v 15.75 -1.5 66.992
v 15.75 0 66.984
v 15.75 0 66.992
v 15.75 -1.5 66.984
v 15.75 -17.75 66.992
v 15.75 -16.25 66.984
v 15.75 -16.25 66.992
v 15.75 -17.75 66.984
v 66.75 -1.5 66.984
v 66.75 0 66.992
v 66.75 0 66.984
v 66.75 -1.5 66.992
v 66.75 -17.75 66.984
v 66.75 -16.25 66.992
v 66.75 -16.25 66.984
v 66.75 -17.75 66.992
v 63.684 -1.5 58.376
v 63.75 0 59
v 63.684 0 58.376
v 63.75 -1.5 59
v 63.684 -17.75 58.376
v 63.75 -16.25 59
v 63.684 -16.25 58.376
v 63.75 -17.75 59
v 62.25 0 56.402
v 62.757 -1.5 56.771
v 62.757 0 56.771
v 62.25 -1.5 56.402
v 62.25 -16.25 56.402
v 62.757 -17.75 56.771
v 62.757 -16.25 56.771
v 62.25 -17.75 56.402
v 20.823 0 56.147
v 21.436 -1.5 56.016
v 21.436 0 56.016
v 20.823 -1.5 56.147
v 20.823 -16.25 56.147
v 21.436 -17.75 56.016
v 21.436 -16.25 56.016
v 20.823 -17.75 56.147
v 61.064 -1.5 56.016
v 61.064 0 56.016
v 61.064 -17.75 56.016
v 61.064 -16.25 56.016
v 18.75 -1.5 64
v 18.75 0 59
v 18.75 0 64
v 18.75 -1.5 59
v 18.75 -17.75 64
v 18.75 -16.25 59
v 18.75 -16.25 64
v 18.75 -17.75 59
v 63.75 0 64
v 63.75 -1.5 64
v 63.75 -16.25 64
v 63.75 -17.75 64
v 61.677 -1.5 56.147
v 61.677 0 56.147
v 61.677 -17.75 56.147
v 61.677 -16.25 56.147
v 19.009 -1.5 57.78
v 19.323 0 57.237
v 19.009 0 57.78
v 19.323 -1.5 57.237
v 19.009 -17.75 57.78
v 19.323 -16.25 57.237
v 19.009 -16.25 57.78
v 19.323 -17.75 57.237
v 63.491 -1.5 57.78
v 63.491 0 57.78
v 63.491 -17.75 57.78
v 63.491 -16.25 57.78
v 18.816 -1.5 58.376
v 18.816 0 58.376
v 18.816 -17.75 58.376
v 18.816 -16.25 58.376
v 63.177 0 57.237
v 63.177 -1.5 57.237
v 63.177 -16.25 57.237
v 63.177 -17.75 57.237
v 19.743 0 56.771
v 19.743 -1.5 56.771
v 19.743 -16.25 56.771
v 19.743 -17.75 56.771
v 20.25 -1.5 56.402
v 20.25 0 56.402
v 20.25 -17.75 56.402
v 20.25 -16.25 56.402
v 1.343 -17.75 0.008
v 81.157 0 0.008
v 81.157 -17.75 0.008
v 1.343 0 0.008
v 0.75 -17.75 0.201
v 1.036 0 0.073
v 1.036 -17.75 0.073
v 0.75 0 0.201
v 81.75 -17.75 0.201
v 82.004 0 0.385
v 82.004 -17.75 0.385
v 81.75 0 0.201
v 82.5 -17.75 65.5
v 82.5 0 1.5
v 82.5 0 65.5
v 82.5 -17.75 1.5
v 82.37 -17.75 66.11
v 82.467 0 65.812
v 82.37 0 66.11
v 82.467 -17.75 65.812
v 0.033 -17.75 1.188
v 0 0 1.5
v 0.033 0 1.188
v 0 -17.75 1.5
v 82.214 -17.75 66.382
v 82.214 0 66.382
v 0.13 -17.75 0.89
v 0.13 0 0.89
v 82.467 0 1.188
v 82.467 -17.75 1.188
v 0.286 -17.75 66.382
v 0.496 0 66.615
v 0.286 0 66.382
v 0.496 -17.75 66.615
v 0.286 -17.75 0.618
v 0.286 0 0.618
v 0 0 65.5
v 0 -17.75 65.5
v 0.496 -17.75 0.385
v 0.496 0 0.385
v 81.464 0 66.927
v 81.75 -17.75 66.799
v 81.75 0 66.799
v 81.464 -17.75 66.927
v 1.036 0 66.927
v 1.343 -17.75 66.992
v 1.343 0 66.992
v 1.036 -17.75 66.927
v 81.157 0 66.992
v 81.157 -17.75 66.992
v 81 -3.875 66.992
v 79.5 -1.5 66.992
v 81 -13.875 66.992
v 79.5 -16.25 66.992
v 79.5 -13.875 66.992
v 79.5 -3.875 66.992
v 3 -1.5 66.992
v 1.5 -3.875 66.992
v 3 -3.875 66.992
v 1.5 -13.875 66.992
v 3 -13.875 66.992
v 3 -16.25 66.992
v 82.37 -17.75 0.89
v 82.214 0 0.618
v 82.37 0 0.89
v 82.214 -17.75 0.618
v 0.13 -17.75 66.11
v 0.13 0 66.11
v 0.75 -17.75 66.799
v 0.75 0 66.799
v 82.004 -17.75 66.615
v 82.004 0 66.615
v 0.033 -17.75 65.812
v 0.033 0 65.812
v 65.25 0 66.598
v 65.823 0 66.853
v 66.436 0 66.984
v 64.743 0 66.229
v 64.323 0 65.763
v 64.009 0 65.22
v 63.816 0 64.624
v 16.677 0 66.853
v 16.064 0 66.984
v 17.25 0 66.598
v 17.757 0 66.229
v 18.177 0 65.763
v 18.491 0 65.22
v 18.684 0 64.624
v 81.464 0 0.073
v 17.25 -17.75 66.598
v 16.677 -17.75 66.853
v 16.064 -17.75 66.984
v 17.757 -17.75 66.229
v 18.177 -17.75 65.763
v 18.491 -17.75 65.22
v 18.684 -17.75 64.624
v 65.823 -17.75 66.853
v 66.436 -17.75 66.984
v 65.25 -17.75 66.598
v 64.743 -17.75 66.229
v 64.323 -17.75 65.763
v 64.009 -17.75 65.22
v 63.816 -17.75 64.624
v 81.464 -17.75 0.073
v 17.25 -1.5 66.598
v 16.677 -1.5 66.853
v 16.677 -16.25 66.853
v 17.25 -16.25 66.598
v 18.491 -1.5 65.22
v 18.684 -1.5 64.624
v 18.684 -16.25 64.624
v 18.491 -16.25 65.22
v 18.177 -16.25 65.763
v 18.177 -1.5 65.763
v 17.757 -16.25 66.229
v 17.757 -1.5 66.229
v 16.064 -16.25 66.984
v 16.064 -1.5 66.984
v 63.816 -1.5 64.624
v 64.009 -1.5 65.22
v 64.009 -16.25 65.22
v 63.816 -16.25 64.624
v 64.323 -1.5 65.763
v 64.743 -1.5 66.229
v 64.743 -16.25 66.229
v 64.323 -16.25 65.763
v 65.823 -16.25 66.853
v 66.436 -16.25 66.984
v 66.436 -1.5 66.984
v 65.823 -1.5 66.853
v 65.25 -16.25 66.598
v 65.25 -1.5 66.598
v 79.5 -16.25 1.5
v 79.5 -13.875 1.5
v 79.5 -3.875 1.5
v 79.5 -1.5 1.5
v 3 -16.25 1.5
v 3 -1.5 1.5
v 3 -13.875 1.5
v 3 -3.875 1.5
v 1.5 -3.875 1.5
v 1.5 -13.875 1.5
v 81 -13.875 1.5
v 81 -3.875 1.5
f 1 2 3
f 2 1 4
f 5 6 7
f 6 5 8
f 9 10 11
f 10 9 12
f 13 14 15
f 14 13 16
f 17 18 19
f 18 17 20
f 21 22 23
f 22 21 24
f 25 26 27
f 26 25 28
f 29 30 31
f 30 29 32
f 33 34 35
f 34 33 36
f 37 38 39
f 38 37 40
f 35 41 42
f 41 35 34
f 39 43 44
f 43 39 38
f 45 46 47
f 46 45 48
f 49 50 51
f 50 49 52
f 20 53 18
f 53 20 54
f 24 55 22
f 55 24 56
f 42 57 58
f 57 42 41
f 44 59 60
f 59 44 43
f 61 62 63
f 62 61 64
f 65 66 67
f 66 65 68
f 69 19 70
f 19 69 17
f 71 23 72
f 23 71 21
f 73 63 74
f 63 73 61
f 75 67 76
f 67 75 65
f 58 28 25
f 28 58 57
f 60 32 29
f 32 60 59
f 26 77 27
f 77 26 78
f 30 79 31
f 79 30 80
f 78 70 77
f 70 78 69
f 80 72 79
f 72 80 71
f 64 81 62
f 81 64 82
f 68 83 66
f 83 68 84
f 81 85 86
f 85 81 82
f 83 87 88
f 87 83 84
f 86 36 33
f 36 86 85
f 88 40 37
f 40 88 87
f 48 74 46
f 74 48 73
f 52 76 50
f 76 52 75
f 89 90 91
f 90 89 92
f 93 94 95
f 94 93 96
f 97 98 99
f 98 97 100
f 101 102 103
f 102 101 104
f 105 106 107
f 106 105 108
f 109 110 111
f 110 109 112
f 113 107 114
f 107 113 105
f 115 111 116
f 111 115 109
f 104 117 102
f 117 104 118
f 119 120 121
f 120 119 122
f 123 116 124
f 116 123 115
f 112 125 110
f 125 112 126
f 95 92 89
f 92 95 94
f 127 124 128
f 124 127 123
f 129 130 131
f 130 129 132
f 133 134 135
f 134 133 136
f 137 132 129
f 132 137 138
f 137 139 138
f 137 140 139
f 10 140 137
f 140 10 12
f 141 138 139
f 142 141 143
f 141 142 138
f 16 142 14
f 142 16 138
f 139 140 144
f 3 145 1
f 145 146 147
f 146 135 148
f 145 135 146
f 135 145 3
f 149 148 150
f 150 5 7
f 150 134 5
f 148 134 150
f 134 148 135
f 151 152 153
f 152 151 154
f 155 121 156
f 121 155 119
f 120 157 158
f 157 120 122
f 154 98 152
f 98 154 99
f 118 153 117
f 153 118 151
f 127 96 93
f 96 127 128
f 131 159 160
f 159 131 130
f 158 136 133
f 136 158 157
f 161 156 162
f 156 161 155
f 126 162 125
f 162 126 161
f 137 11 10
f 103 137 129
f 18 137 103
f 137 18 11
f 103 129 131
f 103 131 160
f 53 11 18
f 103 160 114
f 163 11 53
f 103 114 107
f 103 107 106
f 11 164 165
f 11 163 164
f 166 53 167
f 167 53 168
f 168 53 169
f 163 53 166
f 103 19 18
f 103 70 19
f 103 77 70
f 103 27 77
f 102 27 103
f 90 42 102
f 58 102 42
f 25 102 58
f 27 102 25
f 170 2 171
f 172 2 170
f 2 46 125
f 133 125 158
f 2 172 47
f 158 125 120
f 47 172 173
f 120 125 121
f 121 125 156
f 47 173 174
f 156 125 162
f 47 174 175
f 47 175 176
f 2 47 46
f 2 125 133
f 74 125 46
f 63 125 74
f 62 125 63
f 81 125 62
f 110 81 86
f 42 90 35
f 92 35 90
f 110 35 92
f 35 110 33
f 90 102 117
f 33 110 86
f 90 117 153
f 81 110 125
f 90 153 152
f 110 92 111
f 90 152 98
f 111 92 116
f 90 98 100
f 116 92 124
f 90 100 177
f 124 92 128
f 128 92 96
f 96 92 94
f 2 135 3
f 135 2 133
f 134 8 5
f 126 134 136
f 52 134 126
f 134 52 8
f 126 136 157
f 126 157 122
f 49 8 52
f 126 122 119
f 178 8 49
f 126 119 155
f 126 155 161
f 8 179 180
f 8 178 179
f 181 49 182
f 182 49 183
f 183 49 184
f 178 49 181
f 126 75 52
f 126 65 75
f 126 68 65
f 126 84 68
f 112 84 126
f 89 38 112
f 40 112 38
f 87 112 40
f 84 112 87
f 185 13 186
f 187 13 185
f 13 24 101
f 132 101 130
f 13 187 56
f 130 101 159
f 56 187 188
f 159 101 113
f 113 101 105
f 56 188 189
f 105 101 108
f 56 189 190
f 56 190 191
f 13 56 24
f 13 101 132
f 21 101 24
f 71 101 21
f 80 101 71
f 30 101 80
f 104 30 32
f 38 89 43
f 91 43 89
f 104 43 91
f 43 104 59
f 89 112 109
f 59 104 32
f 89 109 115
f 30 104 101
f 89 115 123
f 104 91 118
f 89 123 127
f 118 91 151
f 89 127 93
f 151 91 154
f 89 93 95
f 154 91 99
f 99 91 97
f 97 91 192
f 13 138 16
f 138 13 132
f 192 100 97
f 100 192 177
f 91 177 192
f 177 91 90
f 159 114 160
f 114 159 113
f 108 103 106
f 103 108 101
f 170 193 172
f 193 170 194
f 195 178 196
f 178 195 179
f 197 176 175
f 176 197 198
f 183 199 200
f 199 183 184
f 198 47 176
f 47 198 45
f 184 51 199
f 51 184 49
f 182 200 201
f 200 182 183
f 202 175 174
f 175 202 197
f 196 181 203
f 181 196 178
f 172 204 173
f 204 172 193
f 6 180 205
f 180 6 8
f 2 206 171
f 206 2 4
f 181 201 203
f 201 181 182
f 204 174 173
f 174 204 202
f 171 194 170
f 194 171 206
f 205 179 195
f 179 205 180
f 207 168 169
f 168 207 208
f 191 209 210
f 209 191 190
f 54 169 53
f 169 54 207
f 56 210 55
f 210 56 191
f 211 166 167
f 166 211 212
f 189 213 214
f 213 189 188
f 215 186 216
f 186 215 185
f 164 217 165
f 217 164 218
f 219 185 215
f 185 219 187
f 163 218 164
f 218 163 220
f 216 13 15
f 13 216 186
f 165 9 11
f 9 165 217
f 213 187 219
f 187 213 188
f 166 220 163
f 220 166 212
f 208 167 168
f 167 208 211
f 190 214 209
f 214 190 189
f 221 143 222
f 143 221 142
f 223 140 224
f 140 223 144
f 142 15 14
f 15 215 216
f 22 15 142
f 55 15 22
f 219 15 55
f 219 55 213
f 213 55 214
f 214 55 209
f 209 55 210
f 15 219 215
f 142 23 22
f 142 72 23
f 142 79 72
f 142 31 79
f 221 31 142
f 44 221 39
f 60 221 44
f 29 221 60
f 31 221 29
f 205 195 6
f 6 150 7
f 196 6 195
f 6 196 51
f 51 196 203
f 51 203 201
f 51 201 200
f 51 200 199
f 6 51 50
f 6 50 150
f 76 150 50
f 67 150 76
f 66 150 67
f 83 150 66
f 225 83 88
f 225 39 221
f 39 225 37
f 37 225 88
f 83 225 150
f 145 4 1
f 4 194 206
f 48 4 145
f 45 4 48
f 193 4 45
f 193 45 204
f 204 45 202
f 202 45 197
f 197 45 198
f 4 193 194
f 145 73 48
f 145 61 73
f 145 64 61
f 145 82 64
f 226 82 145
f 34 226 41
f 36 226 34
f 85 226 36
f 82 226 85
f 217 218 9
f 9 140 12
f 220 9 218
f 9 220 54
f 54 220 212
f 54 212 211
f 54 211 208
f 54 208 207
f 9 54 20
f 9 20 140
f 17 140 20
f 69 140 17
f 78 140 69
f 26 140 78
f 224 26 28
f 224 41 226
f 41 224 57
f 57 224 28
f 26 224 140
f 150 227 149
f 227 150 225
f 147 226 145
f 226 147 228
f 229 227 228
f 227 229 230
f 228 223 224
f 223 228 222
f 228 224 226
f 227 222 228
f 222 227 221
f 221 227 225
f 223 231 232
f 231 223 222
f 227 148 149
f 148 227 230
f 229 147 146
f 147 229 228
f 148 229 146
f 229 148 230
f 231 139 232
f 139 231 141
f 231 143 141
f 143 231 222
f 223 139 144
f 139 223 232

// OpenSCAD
// file: ../lib/roundedcube.scad
// Source: https://danielupshaw.com/openscad-rounded-corners/
// Higher definition curves
$fs = 0.01;

module roundedcube(size = [1, 1, 1], center = false, radius = 0.5, apply_to = "all") {
	// If single value, convert to [x, y, z] vector
	size = (size[0] == undef) ? [size, size, size] : size;

	translate_min = radius;
	translate_xmax = size[0] - radius;
	translate_ymax = size[1] - radius;
	translate_zmax = size[2] - radius;

	diameter = radius * 2;

	module build_point(type = "sphere", rotate = [0, 0, 0]) {
		if (type == "sphere") {
			sphere(r = radius);
		} else if (type == "cylinder") {
			rotate(a = rotate)
			cylinder(h = diameter, r = radius, center = true);
		}
	}

	obj_translate = (center == false) ?
		[0, 0, 0] : [
			-(size[0] / 2),
			-(size[1] / 2),
			-(size[2] / 2)
		];

	translate(v = obj_translate) {
		hull() {
			for (translate_x = [translate_min, translate_xmax]) {
				x_at = (translate_x == translate_min) ? "min" : "max";
				for (translate_y = [translate_min, translate_ymax]) {
					y_at = (translate_y == translate_min) ? "min" : "max";
					for (translate_z = [translate_min, translate_zmax]) {
						z_at = (translate_z == translate_min) ? "min" : "max";

						translate(v = [translate_x, translate_y, translate_z])
						if (
							(apply_to == "all") ||
							(apply_to == "xmin" && x_at == "min") || (apply_to == "xmax" && x_at == "max") ||
							(apply_to == "ymin" && y_at == "min") || (apply_to == "ymax" && y_at == "max") ||
							(apply_to == "zmin" && z_at == "min") || (apply_to == "zmax" && z_at == "max")
						) {
							build_point("sphere");
						} else {
							rotate = 
								(apply_to == "xmin" || apply_to == "xmax" || apply_to == "x") ? [0, 90, 0] : (
								(apply_to == "ymin" || apply_to == "ymax" || apply_to == "y") ? [90, 90, 0] :
								[0, 0, 0]
							);
							build_point("cylinder", rotate);
						}
					}
				}
			}
		}
	}
}
// main file
include <../lib/roundedcube.scad>

DEVICE_WIDTH = 76.5;
DEVICE_DEPTH = 65.5;
DEVICE_HEIGHT = 14.75;

SWITCH_DEPTH = 1.5;
SWITCH_HEIGHT = 10;

CUTOUT_WIDTH = 45;
CUTOUT_DEPTH = 11;
CUTOUT_RADIUS = 3;

WALL_WIDTH = 1.5;
case_radius = WALL_WIDTH;

FONT_DEPTH = 1;

case_width = DEVICE_WIDTH + SWITCH_DEPTH * 2 + WALL_WIDTH * 2;
case_depth = DEVICE_DEPTH + WALL_WIDTH;
case_height = DEVICE_HEIGHT + WALL_WIDTH * 2;

render_helper = 1;

module base_sleeve() {
    roundedcube(
        [
            case_width,
            case_depth,
            case_height
        ],
        radius = case_radius,
        apply_to = "z"
    );
}

module thumb_cutout() {
    offset_x = (case_width - CUTOUT_WIDTH) / 2;
    offset_y = case_depth - CUTOUT_DEPTH;
    offset_z = -render_helper;
    translate([offset_x, offset_y, offset_z])
    roundedcube(
        [
            CUTOUT_WIDTH,
            CUTOUT_DEPTH + CUTOUT_RADIUS + render_helper,
            case_height + render_helper * 2
        ],
        radius = CUTOUT_RADIUS,
        apply_to = "z"
    );
    
    offset_pretty_y = case_depth - CUTOUT_RADIUS;
    translate([offset_x, offset_pretty_y, offset_z])
    union() {
        translate([-CUTOUT_RADIUS, 0, 0])
        cube([
            CUTOUT_RADIUS + render_helper,
            CUTOUT_RADIUS + render_helper,
            case_height + render_helper * 2
        ]);
        
        translate([CUTOUT_WIDTH - render_helper, 0, 0])
        cube([
            CUTOUT_RADIUS + render_helper,
            CUTOUT_RADIUS + render_helper,
            case_height + render_helper * 2
        ]);
    }
}

module thumb_pretty() {
    offset_x = (case_width - CUTOUT_WIDTH) / 2;
    offset_y = case_depth - CUTOUT_RADIUS;
    offset_z = 0;
    translate([offset_x, offset_y, offset_z])
    union() {
        translate([-CUTOUT_RADIUS, 0, 0])
        cylinder(r = CUTOUT_RADIUS, h = case_height);
        
        translate([CUTOUT_WIDTH + CUTOUT_RADIUS, 0, 0])
        cylinder(r = CUTOUT_RADIUS, h = case_height);
    }
}

module device_cutout() {
    offset_x = (case_width - DEVICE_WIDTH) / 2;
    offset_y = case_depth - DEVICE_DEPTH;
    offset_z = (case_height - DEVICE_HEIGHT) / 2;
    translate([offset_x, offset_y, offset_z])
    union() {
        cube(
            [
                DEVICE_WIDTH,
                DEVICE_DEPTH + render_helper,
                DEVICE_HEIGHT
            ]
        );
        
        offset_switch_z = (DEVICE_HEIGHT - SWITCH_HEIGHT) / 2;
        translate([-SWITCH_DEPTH, 0, offset_switch_z])
        cube([
            SWITCH_DEPTH,
            DEVICE_DEPTH + render_helper,
            SWITCH_HEIGHT
        ]);
        
        translate([DEVICE_WIDTH, 0, offset_switch_z])
        cube([
            SWITCH_DEPTH,
            DEVICE_DEPTH + render_helper,
            SWITCH_HEIGHT
        ]);
    }
}

module case() {
    difference() {
        union() {
            difference() {
                base_sleeve();
                thumb_cutout();
            }
            thumb_pretty();
        }
        device_cutout();
    }
}

if ($preview) {
    case();
} else {
    rotate([90, 0, 0])
    case();
}
